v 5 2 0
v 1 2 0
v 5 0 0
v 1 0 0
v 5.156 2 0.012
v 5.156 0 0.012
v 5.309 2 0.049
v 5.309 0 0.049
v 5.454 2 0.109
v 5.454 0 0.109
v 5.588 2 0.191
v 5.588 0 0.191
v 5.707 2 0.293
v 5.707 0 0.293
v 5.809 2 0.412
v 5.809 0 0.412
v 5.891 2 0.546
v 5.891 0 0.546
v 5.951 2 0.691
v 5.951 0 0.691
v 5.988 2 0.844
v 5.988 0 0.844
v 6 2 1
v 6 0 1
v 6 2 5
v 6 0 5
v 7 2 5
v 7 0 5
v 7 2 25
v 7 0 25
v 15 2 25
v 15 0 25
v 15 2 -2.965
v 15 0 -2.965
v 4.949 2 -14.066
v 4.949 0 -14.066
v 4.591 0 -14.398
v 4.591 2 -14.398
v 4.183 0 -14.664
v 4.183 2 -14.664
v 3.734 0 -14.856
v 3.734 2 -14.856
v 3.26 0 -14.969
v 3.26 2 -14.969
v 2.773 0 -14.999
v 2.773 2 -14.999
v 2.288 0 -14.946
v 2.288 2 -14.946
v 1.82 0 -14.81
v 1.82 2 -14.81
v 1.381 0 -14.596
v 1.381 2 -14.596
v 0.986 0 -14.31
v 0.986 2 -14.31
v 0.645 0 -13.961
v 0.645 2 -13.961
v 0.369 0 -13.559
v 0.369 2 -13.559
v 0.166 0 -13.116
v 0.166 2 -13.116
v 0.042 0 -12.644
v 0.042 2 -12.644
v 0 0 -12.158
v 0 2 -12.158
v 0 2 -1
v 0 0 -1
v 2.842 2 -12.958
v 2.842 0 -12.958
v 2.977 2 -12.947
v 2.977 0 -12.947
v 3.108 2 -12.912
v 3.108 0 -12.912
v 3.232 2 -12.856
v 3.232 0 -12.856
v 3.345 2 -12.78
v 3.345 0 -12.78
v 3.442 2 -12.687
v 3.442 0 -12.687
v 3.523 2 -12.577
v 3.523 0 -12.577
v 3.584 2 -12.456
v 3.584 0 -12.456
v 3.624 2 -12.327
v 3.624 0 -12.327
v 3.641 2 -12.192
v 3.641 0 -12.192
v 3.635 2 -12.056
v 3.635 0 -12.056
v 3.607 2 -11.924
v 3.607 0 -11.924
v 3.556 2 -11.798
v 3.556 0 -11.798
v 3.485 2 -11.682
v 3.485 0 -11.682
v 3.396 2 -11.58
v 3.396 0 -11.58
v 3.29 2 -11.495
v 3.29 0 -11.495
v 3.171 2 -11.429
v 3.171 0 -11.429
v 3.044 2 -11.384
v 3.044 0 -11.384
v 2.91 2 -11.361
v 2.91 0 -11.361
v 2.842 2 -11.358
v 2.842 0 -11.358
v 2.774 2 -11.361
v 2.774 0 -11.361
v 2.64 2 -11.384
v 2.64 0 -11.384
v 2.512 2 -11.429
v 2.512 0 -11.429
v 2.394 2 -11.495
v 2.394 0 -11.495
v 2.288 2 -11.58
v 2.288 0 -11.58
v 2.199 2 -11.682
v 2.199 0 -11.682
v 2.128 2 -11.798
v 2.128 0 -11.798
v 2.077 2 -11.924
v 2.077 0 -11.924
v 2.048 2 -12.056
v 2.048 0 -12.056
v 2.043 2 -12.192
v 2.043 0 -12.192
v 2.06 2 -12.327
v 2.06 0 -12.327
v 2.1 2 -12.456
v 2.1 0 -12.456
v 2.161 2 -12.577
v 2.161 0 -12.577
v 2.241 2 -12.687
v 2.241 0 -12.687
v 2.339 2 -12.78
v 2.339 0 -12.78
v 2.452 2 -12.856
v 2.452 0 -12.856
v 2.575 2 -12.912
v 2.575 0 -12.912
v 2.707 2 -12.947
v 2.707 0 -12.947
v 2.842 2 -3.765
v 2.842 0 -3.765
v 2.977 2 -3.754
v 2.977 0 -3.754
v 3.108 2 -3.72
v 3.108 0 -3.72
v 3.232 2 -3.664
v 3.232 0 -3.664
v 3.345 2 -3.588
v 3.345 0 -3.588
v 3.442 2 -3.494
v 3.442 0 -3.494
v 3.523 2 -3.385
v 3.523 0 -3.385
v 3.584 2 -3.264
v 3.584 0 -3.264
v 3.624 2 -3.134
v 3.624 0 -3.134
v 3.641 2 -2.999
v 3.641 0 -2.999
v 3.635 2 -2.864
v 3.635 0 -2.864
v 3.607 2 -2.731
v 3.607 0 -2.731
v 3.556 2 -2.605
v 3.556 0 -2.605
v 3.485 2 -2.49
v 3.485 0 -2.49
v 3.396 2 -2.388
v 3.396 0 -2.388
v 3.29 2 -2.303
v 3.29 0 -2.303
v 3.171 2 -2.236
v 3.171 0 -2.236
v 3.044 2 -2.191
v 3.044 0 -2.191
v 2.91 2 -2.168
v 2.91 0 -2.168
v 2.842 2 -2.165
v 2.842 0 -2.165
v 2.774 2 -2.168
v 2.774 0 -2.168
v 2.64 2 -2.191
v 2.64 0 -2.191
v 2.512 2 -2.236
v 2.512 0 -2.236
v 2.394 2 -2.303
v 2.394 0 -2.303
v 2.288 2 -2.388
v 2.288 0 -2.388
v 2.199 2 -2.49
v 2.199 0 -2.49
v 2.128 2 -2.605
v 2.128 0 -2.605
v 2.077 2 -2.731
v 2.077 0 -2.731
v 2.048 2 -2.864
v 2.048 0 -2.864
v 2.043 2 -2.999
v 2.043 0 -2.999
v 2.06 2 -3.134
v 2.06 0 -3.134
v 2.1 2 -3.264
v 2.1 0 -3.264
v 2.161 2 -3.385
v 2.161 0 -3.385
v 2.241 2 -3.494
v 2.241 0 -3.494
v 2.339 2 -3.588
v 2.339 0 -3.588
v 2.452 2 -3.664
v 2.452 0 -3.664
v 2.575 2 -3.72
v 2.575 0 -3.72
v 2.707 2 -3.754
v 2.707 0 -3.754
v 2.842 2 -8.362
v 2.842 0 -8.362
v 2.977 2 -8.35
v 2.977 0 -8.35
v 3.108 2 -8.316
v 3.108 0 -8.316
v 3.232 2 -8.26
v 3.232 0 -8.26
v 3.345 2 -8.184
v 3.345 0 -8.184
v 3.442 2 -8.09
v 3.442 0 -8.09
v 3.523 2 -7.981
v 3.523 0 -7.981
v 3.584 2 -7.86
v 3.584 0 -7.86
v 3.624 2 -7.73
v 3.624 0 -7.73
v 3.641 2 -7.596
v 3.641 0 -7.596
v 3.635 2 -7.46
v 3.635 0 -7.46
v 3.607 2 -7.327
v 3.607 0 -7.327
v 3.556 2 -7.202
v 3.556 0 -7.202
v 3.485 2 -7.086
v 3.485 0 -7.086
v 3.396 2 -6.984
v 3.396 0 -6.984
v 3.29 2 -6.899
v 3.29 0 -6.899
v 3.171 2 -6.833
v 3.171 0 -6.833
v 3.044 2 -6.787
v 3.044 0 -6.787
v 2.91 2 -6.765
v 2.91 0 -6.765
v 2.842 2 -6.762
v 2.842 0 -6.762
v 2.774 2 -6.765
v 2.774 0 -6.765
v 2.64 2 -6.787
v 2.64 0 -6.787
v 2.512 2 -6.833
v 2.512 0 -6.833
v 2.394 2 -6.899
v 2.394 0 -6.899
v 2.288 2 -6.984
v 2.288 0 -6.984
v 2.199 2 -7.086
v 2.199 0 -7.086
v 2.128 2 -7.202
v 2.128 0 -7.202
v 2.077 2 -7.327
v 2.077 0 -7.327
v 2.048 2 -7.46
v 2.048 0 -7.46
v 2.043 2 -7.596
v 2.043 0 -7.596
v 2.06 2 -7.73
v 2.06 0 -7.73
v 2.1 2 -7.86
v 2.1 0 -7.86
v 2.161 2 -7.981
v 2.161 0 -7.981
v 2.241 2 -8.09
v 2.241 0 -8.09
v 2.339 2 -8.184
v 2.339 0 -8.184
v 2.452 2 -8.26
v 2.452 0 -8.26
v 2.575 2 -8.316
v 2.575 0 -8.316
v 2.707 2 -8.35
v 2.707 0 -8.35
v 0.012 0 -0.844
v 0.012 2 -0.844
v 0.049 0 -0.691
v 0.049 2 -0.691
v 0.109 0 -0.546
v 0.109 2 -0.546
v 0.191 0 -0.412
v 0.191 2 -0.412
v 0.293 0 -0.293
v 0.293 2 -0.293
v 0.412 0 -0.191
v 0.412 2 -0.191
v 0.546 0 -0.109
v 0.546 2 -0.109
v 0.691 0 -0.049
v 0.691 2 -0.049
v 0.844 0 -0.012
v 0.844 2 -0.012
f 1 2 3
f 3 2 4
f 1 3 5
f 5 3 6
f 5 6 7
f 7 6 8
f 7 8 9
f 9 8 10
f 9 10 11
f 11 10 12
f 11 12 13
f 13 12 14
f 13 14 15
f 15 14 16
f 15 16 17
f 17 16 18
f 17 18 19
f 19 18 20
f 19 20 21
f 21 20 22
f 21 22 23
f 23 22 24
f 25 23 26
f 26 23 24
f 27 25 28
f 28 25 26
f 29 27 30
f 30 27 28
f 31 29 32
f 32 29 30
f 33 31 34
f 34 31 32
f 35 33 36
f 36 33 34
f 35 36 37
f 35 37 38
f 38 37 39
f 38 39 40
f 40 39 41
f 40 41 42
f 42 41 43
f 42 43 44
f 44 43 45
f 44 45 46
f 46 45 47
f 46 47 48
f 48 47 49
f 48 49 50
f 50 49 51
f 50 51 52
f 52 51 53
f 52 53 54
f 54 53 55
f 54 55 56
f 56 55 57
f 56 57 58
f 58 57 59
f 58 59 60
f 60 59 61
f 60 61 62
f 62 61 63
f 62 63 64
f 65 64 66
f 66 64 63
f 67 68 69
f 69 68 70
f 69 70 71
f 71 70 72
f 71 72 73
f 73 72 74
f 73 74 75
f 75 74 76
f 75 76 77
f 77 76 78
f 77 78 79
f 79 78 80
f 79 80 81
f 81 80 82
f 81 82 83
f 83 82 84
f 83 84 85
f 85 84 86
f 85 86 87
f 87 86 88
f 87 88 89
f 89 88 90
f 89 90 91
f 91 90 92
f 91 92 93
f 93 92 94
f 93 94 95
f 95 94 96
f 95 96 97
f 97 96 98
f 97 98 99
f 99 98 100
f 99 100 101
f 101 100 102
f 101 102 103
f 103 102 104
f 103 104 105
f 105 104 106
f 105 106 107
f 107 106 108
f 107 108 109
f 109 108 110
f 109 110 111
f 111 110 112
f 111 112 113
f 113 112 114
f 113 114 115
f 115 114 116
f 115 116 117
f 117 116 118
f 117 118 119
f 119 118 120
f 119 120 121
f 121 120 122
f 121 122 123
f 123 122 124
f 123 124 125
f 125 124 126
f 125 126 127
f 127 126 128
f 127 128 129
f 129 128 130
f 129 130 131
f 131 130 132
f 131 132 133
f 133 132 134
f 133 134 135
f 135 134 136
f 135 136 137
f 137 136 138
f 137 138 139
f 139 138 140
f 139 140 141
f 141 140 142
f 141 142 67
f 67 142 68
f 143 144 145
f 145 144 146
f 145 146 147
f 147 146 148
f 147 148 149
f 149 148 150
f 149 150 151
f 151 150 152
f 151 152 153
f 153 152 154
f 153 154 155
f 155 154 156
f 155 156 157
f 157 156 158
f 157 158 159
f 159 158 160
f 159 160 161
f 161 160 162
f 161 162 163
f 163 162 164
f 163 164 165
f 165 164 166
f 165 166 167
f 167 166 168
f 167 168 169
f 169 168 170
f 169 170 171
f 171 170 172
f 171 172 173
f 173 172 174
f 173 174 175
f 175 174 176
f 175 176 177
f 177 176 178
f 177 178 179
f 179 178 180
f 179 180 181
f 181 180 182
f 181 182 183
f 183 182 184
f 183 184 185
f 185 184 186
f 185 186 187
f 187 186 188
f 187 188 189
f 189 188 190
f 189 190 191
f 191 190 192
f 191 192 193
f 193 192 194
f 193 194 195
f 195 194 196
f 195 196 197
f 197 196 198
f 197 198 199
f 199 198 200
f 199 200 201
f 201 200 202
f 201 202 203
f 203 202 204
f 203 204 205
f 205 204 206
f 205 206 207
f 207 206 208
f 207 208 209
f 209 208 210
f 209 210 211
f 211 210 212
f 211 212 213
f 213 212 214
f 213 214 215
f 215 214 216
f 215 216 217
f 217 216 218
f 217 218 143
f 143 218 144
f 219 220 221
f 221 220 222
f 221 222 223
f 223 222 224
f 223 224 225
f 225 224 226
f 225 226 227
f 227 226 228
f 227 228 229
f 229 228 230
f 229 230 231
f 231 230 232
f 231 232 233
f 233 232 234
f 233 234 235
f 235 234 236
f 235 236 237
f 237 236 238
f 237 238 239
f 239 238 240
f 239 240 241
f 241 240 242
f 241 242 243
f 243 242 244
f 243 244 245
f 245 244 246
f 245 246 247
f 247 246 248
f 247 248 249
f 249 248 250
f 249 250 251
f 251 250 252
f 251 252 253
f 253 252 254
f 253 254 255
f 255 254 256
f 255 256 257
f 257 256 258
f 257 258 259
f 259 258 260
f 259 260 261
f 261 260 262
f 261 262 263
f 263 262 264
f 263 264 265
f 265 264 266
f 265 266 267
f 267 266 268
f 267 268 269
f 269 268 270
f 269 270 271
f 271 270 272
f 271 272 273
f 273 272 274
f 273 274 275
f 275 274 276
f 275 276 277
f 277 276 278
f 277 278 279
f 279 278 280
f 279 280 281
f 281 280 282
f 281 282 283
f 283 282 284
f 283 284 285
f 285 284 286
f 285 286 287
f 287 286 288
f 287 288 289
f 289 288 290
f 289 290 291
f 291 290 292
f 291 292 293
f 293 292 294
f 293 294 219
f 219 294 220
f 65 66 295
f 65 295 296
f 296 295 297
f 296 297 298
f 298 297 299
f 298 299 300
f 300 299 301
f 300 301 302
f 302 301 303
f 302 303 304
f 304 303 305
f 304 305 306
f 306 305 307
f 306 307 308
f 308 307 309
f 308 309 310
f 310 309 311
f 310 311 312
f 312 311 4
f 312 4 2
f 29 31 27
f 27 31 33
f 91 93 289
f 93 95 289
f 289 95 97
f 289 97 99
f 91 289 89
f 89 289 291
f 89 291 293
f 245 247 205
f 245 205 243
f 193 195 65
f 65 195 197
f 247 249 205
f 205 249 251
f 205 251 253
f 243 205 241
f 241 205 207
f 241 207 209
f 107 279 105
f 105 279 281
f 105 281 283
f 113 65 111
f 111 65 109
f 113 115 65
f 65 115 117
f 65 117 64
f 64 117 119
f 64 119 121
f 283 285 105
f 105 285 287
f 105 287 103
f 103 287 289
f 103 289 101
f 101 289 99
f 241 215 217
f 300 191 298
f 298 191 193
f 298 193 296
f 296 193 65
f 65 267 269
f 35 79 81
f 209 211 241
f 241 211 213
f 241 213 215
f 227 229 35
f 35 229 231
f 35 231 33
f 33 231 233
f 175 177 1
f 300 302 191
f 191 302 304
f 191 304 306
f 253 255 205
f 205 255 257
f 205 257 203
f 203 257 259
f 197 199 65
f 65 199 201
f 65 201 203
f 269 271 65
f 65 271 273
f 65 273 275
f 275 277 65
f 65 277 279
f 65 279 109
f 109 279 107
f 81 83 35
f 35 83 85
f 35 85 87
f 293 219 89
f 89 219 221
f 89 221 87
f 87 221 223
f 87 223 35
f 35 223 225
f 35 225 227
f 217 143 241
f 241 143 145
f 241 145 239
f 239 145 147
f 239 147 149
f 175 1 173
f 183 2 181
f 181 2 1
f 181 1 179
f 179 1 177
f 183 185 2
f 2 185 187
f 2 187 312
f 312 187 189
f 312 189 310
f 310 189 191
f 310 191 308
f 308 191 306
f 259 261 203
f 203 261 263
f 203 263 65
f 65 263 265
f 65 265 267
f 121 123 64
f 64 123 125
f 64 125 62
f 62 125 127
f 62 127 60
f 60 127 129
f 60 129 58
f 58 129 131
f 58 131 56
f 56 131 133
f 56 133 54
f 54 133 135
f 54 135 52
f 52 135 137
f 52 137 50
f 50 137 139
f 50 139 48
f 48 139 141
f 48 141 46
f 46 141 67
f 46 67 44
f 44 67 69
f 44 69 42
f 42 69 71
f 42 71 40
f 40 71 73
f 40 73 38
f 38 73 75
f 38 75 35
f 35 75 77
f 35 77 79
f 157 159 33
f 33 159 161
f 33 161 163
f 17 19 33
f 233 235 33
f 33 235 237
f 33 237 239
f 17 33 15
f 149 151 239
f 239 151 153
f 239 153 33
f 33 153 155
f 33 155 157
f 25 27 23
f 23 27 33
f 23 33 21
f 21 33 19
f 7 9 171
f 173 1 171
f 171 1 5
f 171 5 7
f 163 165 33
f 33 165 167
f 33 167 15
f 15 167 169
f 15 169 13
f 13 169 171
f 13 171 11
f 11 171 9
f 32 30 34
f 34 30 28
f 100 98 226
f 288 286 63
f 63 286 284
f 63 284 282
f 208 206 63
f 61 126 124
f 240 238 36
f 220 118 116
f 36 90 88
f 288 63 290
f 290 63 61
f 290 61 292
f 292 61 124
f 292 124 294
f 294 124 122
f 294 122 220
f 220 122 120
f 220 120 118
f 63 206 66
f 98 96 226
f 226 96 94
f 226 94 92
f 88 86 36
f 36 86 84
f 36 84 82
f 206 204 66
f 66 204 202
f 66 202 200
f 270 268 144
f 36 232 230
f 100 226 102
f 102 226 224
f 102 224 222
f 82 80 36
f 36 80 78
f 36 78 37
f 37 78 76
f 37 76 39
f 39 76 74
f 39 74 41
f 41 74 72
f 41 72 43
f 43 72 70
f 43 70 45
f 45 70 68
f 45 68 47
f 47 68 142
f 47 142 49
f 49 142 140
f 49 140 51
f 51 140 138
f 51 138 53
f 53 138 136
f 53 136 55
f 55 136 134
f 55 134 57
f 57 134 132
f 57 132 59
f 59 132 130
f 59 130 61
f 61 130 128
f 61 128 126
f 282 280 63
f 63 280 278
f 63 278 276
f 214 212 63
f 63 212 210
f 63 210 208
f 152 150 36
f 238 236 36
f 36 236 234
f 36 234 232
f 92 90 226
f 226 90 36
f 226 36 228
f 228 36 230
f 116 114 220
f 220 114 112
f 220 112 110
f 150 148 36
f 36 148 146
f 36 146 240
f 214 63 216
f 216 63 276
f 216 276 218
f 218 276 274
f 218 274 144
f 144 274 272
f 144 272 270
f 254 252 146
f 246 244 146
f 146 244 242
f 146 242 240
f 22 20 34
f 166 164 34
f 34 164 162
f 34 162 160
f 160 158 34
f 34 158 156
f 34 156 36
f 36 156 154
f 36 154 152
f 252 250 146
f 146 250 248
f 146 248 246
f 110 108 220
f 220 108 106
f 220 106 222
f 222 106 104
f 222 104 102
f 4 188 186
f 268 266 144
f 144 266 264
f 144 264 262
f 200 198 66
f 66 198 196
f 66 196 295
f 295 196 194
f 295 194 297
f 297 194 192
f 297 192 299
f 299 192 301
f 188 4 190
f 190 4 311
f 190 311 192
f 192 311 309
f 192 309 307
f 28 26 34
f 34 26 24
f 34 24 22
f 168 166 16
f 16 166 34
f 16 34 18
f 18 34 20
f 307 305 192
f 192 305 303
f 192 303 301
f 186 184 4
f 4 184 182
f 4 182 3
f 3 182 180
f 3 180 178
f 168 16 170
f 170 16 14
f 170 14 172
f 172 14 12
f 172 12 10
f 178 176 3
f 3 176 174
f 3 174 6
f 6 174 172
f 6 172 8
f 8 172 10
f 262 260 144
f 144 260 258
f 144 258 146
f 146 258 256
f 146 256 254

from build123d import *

# Parameters (mm, degrees)
SKETCH1_R           = 0.8
BOSS_EXTRUDE1_DEPTH = 2


with BuildPart() as part:
    # Sketch1 → Boss-Extrude1 (new body)
    with BuildSketch(Plane(origin=(0, 0, 0), x_dir=(1, 0, 0), z_dir=(0, 1, 0))):
        with BuildLine():
            Line((1, 0), (5, 0))
            ThreePointArc((5, 0), (5.707106781, -0.292893219), (6, -1))
            Line((6, -1), (6, -5))
            Line((6, -5), (7, -5))
            Line((7, -5), (7, -25))
            Line((7, -25), (15, -25))
            Line((15, -25), (15, 2.965311532))
            Line((15, 2.965311532), (4.948577491, 14.065616497))
            ThreePointArc((4.948577491, 14.065616497), (1.819757882, 14.809804225), (0, 12.158048434))
            Line((0, 12.158048434), (0, 1))
            ThreePointArc((0, 1), (0.292893219, 0.292893219), (1, 0))
        make_face()
        with Locations(Location((2.841951566, 7.561679983, 0), (0, 0, 270))):
            Circle(SKETCH1_R, mode=Mode.SUBTRACT)
        with Locations(Location((2.841951566, 2.965311532, 0), (0, 0, 270))):
            Circle(SKETCH1_R, mode=Mode.SUBTRACT)
        with Locations(Location((2.841951566, 12.158048434, 0), (0, 0, 270))):
            Circle(SKETCH1_R, mode=Mode.SUBTRACT)
    extrude(amount=BOSS_EXTRUDE1_DEPTH)


solid = part.part
